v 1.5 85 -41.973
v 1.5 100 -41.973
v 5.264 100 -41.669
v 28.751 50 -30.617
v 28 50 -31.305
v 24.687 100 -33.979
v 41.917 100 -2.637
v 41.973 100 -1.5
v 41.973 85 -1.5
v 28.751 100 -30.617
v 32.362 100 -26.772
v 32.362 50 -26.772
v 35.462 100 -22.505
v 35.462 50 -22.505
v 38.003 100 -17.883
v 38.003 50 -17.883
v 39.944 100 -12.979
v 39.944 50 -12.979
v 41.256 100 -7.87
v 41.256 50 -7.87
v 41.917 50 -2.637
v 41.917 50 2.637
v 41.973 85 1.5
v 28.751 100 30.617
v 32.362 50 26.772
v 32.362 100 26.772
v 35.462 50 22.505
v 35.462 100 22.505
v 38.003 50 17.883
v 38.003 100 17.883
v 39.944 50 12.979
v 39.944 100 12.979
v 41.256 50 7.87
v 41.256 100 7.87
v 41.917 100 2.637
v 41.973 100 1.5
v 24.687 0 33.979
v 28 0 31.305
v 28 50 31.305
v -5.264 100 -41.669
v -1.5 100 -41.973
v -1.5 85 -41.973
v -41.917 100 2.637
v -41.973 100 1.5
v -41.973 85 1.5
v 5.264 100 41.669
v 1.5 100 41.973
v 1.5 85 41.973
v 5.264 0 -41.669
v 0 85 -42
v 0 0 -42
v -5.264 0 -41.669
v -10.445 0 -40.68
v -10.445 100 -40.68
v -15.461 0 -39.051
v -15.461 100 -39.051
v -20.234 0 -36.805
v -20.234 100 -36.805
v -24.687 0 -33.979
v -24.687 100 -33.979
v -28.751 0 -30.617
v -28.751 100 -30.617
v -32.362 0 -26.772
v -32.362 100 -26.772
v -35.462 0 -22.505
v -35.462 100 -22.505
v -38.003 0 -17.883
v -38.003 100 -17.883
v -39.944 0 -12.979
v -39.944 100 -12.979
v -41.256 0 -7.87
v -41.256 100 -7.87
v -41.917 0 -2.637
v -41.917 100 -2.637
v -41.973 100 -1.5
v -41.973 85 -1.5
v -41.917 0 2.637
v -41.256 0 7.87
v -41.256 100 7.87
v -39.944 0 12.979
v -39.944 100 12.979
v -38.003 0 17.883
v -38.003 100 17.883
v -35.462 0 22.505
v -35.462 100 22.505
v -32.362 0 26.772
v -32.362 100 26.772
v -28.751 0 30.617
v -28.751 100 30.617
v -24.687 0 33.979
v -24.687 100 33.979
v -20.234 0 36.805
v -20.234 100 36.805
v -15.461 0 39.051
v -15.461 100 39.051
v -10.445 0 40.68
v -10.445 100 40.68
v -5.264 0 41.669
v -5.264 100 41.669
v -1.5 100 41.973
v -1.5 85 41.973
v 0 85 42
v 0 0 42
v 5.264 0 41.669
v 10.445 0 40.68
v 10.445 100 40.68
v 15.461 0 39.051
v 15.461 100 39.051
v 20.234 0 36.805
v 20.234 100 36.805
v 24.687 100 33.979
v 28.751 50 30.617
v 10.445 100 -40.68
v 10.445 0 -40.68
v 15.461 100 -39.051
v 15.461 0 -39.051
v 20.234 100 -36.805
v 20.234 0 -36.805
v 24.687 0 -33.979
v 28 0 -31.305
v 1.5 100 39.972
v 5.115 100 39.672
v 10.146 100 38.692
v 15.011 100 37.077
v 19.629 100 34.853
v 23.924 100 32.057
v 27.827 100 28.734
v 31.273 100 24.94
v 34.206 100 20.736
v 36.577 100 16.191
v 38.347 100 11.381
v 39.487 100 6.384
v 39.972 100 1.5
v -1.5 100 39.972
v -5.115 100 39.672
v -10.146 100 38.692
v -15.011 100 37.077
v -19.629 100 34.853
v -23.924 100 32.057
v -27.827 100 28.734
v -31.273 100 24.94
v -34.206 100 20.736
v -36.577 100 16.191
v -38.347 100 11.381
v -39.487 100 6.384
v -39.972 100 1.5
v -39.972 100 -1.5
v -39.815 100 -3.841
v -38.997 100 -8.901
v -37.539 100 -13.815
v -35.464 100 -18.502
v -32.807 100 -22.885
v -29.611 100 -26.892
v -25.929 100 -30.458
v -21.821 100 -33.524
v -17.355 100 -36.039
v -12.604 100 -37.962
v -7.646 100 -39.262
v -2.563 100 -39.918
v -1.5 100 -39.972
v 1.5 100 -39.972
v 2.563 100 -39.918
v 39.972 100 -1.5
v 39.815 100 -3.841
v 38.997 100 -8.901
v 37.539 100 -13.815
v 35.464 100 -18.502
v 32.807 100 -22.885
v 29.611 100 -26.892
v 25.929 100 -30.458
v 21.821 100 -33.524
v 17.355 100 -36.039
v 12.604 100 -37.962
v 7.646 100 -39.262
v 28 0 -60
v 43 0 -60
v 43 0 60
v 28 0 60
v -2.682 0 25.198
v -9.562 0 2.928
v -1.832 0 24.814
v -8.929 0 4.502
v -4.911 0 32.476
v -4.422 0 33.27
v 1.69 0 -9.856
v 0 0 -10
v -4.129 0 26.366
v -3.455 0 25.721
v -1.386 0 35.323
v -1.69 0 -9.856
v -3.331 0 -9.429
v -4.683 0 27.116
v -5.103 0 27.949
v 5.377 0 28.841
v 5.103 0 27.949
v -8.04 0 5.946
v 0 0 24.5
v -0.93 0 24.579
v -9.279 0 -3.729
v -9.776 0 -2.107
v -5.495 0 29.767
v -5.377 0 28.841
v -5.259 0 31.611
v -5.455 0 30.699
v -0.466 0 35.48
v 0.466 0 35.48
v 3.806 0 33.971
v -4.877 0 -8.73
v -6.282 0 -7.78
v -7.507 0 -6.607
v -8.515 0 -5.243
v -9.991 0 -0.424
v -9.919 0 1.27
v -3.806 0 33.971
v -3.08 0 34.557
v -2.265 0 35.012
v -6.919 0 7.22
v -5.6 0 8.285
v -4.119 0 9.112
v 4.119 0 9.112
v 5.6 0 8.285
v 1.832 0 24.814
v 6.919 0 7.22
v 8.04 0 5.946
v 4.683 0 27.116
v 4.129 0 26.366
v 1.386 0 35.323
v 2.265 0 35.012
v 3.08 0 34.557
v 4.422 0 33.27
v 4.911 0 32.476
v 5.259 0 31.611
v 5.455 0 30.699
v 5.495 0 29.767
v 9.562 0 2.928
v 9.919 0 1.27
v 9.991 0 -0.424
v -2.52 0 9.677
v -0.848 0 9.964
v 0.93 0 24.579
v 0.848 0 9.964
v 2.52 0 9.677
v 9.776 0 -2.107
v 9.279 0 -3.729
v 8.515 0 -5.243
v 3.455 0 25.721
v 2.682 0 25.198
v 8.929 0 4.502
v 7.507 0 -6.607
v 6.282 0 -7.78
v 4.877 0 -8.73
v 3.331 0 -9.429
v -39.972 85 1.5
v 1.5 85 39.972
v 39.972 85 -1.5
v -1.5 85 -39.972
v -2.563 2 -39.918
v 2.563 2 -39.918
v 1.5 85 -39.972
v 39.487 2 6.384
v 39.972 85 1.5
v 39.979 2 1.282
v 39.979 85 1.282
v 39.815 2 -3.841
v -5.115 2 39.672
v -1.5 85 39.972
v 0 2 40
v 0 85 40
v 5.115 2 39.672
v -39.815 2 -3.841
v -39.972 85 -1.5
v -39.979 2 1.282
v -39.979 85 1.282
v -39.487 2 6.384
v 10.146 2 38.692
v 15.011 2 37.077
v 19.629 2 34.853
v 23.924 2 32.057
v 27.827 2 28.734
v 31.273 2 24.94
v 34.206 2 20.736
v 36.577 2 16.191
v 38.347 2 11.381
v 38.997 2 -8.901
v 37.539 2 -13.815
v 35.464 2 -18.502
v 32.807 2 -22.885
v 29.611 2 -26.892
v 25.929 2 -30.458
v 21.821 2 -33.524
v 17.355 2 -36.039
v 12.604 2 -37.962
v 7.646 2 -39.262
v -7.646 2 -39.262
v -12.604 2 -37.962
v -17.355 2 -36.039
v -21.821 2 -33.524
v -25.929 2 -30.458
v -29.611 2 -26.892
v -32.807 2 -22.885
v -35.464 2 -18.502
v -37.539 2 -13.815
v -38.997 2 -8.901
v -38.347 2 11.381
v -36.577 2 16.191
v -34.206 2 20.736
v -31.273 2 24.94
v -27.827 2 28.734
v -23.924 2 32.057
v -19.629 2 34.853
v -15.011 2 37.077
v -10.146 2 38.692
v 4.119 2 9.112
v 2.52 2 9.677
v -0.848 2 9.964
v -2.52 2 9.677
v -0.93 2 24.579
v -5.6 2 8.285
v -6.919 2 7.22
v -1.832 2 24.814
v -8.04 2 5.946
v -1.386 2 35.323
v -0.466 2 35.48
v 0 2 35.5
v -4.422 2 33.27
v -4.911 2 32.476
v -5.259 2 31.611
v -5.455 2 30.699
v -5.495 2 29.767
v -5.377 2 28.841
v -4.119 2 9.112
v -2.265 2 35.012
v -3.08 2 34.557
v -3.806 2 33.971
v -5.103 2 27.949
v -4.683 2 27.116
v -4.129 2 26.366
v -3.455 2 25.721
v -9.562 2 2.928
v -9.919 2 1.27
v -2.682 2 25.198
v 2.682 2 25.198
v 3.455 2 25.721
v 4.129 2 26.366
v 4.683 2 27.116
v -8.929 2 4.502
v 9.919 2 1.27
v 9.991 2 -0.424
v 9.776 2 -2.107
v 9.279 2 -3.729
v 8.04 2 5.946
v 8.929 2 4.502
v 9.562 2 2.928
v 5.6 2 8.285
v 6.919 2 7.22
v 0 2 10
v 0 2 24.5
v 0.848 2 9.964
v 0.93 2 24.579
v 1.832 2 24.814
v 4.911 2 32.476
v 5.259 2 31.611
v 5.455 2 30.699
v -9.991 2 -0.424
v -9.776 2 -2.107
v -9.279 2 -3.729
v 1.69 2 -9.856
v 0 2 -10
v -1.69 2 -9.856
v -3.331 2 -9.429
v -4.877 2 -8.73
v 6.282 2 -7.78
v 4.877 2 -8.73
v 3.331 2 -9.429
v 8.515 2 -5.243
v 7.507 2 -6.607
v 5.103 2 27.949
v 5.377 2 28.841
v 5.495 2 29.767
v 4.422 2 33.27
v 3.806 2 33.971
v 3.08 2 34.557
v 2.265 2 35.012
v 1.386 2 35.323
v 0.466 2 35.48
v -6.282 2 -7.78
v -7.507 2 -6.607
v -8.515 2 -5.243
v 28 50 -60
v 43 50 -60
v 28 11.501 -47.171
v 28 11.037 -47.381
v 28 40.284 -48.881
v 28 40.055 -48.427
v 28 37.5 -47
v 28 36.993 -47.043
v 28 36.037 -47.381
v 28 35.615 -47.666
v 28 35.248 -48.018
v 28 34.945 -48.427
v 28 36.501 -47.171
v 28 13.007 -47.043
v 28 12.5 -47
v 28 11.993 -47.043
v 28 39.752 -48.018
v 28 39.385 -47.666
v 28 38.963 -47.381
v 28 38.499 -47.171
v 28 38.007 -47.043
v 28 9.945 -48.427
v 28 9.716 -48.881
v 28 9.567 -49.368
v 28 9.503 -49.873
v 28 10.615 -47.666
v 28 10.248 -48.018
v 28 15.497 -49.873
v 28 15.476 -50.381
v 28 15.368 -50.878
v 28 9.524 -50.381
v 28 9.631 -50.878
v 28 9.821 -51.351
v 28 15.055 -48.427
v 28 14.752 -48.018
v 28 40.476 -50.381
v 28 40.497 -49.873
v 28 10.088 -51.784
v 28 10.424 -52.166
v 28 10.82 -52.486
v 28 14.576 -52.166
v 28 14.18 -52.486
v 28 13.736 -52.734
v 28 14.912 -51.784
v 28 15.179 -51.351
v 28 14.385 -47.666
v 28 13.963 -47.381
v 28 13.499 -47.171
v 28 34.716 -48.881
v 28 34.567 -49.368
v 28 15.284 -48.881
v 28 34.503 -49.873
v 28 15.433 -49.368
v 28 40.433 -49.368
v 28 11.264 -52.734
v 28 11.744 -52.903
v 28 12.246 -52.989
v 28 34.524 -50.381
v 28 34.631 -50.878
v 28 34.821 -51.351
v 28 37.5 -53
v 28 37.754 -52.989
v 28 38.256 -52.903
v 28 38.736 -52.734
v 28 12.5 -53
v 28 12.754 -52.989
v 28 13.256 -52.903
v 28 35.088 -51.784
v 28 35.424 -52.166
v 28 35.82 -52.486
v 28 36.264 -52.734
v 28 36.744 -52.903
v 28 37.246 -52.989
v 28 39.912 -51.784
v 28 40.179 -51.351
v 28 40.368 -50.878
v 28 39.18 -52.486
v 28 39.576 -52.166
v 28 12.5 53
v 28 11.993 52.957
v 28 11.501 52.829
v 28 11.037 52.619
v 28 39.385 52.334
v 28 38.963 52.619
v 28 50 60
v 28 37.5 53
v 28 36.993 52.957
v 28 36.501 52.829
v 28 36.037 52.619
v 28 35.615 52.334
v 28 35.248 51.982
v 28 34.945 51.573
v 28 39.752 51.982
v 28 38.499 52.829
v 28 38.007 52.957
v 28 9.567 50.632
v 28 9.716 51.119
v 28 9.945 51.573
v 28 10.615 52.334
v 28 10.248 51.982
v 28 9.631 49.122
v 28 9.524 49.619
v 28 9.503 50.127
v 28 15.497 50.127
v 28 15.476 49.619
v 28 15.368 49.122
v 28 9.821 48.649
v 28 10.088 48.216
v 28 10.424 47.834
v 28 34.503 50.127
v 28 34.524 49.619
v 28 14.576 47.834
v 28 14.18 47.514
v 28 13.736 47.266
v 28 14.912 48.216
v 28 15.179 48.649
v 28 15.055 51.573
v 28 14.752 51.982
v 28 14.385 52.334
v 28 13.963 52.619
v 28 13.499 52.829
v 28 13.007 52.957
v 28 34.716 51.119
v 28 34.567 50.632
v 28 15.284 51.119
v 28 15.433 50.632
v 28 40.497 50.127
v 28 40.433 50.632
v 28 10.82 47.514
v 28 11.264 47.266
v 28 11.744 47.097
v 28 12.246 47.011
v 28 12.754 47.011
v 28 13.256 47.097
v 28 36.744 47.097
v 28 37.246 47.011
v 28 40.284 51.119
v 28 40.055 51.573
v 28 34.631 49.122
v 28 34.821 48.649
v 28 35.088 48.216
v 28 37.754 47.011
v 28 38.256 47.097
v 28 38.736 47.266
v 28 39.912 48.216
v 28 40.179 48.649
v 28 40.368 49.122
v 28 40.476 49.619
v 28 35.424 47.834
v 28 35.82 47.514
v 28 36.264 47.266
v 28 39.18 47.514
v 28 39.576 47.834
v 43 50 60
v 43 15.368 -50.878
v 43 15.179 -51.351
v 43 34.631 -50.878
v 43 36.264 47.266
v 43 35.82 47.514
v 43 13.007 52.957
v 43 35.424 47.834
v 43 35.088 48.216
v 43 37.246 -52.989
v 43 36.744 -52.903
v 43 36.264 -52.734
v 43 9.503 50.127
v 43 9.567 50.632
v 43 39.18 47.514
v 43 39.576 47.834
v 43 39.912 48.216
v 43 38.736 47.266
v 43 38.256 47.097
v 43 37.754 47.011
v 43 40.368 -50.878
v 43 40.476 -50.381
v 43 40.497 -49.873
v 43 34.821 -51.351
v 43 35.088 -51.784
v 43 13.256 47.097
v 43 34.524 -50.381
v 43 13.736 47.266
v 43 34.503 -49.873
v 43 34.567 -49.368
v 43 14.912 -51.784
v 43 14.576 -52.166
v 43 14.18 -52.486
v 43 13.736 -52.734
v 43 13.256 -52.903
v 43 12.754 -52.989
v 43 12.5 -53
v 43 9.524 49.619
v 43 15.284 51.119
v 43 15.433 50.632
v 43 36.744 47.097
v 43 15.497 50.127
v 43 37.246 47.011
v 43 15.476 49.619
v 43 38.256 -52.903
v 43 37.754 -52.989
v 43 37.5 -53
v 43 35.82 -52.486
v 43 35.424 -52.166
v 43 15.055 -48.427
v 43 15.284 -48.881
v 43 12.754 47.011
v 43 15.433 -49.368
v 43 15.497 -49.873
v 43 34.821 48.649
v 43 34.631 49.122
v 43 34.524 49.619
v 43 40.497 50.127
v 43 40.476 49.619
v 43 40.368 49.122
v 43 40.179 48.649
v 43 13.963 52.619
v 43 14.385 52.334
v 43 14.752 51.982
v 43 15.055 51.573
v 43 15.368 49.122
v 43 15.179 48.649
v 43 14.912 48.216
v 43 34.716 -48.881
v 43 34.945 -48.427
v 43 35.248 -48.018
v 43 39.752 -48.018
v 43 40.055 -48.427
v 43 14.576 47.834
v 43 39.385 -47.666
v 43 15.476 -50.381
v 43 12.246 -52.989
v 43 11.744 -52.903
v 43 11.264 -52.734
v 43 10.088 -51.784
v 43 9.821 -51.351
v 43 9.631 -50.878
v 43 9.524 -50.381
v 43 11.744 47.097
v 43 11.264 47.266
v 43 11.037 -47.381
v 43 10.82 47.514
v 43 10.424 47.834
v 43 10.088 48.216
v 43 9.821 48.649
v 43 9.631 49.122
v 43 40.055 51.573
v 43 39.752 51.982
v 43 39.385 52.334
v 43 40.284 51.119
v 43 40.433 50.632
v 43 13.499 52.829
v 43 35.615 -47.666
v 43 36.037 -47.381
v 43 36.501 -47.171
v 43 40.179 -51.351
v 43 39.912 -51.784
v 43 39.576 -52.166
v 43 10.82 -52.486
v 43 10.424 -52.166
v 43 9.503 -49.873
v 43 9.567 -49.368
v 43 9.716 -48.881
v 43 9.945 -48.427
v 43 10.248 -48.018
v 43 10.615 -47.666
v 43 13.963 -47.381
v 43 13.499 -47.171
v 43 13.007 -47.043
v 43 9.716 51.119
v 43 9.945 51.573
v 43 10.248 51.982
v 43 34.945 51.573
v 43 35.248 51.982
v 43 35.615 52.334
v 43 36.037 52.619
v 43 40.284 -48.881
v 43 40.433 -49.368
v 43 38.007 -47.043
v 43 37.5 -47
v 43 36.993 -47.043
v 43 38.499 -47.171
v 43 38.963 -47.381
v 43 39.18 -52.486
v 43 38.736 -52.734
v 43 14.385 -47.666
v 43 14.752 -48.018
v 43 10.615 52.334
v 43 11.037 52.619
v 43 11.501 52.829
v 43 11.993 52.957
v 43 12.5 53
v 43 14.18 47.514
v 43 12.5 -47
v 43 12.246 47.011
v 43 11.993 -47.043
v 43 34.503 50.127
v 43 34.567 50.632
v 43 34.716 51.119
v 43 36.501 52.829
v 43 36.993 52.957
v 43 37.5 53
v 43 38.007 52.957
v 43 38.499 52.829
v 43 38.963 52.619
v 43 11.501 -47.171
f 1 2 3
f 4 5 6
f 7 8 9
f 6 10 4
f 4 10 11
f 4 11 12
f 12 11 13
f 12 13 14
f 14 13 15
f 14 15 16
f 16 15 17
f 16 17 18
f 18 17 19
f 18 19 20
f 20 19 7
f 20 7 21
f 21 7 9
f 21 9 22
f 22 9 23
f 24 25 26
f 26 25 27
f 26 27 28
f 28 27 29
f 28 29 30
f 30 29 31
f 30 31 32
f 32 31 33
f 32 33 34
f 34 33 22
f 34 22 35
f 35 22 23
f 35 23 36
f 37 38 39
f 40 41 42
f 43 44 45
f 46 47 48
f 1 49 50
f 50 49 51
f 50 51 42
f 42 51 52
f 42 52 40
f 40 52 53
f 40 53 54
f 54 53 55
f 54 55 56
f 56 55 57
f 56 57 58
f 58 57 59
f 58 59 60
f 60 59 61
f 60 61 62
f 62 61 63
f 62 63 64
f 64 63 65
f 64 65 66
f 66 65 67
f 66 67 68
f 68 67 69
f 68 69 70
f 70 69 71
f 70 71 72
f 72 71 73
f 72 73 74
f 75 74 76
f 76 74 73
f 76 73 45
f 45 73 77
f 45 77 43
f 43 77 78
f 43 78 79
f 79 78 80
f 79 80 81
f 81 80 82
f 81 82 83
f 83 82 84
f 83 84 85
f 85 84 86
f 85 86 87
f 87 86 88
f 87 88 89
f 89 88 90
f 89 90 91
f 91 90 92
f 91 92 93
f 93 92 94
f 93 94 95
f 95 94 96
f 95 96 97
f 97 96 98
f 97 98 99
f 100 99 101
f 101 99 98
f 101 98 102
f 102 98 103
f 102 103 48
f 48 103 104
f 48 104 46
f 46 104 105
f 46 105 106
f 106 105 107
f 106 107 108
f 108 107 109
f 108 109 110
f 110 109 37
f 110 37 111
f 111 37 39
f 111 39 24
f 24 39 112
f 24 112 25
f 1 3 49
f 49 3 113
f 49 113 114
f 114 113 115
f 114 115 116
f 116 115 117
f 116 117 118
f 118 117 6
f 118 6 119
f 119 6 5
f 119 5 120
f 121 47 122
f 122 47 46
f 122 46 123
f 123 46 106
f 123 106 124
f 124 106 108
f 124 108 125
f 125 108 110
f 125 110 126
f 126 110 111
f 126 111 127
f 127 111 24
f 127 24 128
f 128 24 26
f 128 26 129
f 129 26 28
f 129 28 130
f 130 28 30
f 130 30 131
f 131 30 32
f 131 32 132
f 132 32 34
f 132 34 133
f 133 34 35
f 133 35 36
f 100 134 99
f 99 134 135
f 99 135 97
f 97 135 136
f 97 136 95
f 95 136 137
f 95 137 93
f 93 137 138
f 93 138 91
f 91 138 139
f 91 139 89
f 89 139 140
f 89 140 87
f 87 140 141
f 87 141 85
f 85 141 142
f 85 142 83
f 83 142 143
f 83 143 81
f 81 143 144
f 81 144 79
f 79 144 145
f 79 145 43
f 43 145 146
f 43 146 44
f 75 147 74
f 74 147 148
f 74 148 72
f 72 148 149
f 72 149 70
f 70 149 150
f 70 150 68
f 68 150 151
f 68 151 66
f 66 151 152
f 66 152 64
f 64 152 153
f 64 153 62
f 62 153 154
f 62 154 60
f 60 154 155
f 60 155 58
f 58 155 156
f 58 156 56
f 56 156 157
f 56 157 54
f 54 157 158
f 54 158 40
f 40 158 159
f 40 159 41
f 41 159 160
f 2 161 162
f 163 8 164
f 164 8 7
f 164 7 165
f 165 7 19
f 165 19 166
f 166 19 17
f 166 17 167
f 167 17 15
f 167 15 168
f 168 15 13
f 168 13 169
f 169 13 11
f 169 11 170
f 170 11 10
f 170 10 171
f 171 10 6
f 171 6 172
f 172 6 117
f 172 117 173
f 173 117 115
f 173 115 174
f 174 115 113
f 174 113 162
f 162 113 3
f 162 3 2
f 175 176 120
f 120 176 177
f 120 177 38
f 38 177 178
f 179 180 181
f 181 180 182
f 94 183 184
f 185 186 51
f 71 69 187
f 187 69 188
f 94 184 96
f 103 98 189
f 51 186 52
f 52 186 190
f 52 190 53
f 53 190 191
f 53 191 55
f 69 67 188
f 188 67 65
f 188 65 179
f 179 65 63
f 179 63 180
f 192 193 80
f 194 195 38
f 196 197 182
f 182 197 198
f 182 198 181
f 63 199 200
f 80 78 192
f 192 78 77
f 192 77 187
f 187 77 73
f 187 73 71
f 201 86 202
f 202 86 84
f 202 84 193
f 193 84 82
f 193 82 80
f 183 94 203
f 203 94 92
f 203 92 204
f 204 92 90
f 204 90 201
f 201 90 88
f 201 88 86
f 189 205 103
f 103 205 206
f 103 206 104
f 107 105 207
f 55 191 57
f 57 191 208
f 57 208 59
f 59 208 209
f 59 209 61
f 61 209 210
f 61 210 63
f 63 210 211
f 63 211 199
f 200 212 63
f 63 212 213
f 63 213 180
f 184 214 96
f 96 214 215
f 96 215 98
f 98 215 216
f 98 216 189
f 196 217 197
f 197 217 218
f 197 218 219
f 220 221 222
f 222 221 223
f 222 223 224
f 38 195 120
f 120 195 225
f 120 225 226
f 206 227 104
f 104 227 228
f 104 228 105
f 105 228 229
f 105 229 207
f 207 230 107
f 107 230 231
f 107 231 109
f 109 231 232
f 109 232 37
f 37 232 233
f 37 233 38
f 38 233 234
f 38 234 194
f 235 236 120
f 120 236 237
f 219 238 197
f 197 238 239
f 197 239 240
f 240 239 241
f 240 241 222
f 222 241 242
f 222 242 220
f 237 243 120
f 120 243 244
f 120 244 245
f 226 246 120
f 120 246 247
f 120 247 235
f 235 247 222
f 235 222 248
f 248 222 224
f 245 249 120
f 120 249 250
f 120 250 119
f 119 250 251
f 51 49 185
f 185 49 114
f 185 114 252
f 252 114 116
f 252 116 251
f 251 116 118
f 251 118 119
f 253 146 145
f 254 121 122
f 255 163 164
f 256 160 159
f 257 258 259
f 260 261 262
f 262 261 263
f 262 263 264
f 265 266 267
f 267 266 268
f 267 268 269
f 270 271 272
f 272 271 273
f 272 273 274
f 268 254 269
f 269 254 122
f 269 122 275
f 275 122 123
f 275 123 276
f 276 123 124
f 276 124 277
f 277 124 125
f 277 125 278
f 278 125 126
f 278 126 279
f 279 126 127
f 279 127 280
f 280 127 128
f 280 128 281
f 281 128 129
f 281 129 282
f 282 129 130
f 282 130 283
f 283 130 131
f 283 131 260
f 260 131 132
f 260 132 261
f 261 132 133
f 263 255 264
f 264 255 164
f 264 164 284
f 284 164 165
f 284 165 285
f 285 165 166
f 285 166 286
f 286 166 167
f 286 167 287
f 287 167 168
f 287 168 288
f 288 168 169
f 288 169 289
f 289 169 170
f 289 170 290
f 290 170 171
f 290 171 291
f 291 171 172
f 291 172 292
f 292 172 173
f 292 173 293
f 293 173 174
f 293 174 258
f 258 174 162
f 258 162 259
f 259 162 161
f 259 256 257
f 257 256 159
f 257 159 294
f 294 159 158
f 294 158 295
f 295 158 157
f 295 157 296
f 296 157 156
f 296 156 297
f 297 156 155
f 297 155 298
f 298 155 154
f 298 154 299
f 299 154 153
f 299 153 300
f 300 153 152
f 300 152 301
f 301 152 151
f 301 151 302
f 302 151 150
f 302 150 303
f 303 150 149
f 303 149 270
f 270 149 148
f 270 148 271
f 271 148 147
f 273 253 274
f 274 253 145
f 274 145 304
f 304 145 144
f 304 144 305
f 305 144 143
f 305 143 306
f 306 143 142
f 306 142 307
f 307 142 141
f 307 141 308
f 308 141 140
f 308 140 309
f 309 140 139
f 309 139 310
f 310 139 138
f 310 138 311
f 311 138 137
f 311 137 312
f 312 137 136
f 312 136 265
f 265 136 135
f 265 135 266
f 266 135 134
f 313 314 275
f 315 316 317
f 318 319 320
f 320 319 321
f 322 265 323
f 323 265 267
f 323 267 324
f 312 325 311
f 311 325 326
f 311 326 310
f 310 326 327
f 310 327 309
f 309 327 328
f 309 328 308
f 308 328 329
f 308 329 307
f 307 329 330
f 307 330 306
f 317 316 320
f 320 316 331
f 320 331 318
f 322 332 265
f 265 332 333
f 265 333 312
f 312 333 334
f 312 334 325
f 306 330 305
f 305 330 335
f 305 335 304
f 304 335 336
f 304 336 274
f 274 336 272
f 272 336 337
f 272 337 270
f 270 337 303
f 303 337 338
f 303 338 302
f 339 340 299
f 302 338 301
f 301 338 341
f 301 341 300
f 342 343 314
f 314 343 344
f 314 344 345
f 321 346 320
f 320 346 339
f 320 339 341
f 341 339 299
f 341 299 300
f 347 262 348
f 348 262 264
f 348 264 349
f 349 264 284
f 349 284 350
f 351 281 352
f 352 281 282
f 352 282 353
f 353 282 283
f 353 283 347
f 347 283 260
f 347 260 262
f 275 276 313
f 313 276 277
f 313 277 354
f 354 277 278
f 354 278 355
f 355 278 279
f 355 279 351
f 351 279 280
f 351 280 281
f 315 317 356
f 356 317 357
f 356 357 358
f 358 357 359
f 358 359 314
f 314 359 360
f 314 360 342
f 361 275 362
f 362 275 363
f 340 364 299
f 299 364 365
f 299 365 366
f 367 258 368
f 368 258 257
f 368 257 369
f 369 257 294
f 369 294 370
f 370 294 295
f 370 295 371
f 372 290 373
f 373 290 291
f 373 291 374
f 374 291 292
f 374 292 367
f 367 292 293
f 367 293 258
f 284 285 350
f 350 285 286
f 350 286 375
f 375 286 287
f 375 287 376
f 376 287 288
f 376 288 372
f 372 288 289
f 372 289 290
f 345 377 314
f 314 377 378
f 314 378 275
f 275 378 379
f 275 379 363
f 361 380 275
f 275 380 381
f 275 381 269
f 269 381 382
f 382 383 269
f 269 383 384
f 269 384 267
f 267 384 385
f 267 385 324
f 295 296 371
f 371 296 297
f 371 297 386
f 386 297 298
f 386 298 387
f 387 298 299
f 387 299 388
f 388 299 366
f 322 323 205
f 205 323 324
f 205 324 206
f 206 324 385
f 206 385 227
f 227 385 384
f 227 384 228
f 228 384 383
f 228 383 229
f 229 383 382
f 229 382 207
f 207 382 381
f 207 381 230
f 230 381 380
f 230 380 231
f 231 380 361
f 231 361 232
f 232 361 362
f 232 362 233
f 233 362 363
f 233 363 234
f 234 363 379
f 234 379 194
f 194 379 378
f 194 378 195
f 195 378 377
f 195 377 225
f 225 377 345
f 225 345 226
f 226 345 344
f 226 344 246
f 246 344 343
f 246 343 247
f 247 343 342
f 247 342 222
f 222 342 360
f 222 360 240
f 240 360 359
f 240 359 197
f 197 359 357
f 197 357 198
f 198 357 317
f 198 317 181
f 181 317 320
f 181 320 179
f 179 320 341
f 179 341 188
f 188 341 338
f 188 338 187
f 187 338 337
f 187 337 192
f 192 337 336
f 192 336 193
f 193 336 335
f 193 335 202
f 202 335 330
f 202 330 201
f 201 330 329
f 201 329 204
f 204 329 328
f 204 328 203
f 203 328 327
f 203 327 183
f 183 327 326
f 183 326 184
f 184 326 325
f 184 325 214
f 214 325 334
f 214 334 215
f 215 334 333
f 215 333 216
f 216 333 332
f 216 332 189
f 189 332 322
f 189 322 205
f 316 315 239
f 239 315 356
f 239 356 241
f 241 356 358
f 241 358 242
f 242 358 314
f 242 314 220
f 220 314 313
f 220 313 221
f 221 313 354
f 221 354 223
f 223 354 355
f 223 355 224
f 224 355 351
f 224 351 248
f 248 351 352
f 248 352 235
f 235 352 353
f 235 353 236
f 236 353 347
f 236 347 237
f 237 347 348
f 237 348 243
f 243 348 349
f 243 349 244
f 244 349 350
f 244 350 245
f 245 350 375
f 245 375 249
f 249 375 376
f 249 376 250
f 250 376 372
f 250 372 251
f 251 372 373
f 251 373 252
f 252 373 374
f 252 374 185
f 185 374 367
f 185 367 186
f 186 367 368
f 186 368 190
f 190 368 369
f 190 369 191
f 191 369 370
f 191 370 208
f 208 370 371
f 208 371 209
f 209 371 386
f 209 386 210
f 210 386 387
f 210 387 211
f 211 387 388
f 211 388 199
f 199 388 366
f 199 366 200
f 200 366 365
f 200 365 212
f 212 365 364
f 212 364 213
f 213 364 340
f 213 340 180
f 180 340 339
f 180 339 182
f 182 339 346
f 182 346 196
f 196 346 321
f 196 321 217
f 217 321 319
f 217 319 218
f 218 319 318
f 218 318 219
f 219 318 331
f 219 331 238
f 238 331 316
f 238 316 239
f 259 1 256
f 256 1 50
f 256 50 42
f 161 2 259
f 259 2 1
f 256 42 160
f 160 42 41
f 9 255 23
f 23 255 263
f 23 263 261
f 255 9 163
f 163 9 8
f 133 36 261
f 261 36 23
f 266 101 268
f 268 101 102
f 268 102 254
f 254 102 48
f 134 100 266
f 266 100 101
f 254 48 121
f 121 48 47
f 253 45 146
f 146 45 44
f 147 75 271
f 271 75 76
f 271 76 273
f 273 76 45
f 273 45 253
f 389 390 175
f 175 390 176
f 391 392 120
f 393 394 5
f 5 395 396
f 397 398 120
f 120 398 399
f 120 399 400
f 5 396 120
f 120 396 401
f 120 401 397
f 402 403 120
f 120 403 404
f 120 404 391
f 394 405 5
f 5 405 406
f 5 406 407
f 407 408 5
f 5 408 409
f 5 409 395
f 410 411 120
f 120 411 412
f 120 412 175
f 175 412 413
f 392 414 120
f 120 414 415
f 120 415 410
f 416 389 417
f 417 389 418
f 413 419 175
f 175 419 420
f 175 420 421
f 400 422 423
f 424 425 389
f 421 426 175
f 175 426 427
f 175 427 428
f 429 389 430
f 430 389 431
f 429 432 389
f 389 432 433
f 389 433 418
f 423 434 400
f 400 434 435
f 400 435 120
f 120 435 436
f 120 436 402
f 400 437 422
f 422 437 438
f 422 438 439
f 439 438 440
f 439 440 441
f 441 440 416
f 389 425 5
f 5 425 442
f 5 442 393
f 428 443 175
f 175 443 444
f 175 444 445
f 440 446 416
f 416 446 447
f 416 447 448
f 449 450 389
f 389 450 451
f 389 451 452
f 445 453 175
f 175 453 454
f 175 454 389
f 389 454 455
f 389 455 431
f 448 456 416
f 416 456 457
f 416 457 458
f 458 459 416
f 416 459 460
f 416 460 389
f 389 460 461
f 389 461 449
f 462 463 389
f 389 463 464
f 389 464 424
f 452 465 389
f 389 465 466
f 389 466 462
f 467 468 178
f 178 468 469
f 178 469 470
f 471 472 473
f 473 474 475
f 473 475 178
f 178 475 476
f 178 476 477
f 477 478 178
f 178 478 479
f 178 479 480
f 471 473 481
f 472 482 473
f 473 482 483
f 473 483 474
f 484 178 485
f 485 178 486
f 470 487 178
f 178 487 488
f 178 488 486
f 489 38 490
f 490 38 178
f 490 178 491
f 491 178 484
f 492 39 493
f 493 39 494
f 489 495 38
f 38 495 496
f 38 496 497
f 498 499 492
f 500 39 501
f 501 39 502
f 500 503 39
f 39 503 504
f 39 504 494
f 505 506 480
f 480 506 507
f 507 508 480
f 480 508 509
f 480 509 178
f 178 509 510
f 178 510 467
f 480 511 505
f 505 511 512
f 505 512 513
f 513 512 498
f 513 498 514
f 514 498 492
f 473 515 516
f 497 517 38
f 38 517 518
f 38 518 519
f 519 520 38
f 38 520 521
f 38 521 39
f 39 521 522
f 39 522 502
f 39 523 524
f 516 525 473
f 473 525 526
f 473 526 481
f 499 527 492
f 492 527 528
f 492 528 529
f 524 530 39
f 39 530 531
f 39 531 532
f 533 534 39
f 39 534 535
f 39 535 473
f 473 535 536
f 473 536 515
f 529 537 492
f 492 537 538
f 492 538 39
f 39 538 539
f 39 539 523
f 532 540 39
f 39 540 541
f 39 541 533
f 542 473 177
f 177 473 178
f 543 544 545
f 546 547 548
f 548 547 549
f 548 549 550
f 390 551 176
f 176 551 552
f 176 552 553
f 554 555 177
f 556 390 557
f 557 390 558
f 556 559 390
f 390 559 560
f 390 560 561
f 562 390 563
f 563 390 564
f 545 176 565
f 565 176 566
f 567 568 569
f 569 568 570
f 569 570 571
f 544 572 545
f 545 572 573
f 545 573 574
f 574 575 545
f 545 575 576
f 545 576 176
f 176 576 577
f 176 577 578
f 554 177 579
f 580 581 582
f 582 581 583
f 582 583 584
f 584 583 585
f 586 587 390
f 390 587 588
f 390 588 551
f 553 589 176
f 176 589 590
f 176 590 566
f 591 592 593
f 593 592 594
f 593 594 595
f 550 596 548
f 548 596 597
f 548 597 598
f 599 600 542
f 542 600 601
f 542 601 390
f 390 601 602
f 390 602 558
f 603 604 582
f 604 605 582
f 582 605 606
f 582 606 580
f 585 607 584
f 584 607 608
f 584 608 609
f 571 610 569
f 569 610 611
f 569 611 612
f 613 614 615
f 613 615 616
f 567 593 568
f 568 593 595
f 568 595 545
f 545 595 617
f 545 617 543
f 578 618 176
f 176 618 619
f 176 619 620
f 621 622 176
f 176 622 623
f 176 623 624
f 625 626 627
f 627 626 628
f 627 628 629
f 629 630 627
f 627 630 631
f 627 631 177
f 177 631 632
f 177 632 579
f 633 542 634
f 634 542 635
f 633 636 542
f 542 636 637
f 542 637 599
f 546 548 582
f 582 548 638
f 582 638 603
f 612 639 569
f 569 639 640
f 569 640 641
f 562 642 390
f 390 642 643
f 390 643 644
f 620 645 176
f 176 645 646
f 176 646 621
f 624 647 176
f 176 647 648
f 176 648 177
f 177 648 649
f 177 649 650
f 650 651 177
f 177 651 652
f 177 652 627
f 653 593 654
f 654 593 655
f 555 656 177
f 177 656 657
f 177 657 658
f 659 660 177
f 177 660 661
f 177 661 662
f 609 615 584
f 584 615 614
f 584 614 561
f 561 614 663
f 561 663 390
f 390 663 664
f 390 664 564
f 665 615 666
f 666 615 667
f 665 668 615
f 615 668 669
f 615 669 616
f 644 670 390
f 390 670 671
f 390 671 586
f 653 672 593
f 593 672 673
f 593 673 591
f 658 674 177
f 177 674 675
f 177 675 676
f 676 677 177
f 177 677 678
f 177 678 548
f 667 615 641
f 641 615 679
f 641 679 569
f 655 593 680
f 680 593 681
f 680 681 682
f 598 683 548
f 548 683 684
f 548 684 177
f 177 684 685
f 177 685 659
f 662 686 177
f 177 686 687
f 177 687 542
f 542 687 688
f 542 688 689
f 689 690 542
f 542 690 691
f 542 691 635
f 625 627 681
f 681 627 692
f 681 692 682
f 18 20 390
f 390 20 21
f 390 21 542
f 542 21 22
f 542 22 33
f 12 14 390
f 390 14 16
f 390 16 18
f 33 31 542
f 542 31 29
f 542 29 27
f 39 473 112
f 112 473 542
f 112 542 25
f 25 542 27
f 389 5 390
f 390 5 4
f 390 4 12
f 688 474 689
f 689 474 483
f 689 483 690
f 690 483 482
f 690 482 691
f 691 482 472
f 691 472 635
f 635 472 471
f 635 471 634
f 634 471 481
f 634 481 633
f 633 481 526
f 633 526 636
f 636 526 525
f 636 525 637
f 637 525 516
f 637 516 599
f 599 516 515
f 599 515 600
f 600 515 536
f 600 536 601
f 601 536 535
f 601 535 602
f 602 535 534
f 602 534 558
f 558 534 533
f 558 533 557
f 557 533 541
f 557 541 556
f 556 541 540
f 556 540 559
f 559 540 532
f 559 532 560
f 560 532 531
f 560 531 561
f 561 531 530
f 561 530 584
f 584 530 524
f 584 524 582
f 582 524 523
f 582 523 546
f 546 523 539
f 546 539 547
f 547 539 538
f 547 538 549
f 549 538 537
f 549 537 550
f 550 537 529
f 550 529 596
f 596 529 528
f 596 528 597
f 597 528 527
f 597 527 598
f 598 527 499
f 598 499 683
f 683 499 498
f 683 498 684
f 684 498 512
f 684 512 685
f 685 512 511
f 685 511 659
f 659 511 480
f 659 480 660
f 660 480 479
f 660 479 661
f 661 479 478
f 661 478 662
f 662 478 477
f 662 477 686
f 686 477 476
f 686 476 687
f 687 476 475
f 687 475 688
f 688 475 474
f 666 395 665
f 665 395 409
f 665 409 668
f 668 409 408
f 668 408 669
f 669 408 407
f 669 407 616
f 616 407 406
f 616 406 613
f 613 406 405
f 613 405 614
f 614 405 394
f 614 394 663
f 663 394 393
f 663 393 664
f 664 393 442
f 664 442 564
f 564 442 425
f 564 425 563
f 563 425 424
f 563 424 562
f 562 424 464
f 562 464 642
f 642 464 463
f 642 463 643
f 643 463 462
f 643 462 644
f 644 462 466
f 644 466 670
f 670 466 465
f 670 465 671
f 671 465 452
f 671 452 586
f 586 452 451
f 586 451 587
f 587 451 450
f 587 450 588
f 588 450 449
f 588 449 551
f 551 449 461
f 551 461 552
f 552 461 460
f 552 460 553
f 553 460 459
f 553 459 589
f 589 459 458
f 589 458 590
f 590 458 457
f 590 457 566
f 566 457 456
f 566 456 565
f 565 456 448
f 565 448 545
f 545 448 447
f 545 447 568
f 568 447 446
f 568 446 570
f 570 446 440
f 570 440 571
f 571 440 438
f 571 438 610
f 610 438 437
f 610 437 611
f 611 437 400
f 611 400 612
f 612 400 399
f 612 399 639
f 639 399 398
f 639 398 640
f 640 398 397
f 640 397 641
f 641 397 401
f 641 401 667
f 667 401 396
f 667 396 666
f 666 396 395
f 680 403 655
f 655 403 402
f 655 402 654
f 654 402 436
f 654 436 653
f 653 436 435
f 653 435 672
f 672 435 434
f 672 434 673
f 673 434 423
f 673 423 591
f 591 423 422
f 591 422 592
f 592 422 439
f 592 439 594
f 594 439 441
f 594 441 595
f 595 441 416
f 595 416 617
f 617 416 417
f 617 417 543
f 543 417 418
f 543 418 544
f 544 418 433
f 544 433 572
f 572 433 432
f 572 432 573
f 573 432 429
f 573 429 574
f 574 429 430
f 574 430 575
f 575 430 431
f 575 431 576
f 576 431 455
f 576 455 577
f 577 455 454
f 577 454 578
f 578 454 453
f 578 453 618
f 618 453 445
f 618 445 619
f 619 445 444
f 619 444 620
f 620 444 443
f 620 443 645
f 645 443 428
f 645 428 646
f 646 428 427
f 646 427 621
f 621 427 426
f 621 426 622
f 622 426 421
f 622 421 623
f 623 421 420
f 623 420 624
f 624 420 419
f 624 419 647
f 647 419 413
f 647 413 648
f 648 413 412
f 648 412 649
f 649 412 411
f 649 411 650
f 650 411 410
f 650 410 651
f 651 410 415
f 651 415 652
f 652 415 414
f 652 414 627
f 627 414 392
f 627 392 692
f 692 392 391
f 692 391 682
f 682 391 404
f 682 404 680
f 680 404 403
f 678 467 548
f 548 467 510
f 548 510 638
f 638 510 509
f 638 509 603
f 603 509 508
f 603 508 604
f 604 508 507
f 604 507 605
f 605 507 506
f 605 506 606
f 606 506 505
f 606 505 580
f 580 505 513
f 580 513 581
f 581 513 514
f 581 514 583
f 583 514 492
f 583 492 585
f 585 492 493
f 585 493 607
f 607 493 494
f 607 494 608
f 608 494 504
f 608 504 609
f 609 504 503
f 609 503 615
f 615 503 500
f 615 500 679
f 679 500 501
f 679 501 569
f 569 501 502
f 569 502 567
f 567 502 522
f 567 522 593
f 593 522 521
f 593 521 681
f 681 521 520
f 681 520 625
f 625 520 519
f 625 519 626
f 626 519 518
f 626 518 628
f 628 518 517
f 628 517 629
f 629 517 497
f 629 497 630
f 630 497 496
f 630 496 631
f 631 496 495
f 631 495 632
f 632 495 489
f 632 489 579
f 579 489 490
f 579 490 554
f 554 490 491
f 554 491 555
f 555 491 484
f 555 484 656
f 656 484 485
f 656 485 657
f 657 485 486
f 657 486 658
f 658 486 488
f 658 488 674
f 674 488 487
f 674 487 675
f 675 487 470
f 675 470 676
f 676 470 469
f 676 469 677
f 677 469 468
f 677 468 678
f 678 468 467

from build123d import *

# Parameters (mm, degrees)
ESBO_O1_R                = 42
RESSALTO_EXTRUS_O1_DEPTH = 100
ESBO_O2_R                = 40
CORTE_EXTRUS_O1_DEPTH    = 98
ESBO_O3_R                = 5.5
CORTE_EXTRUS_O2_DEPTH    = 117.309930788
ESBO_O4_R                = 10
CORTE_EXTRUS_O3_DEPTH    = 117.309930788
CORTE_EXTRUS_O4_DEPTH    = 15
RESSALTO_EXTRUS_O3_DEPTH = 50
ESBO_O9_R                = 3
CORTE_EXTRUS_O5_DEPTH    = 137.014705087


with BuildPart() as part:
    # Esboço1 → Ressalto-extrusão1 (new body)
    with BuildSketch(Plane(origin=(0, 0, 0), x_dir=(1, 0, 0), z_dir=(0, 1, 0))):
        with Locations(Location((0, 0, 0), (0, 0, 270))):
            Circle(ESBO_O1_R)
    extrude(amount=RESSALTO_EXTRUS_O1_DEPTH)

    # Esboço2 → Corte-extrusão1 (cut)
    with BuildSketch(Plane(origin=(0, 100, 0), x_dir=(1, 0, 0), z_dir=(0, 1, 0))):
        with Locations(Location((0, 0, 0), (0, 0, 270))):
            Circle(ESBO_O2_R)
    extrude(amount=-CORTE_EXTRUS_O1_DEPTH, mode=Mode.SUBTRACT)

    # Esboço3 → Corte-extrusão2 (cut, through all)
    with BuildSketch(Plane.XZ):
        with Locations(Location((0, 30, 0), (0, 0, 270))):
            Circle(ESBO_O3_R)
    extrude(amount=-CORTE_EXTRUS_O2_DEPTH, mode=Mode.SUBTRACT)

    # Esboço4 → Corte-extrusão3 (cut, through all)
    with BuildSketch(Plane.XZ):
        with Locations(Location((0, 0, 0), (0, 0, 270))):
            Circle(ESBO_O4_R)
    extrude(amount=-CORTE_EXTRUS_O3_DEPTH, mode=Mode.SUBTRACT)

    # Esboço5 → Corte-extrusão4 (cut)
    with BuildSketch(Plane(origin=(0, 100, 0), x_dir=(1, 0, 0), z_dir=(0, 1, 0))):
        Polygon((1.5, 1.5), (52.94033898, 1.5), (52.94033898, -1.5), (1.5, -1.5), (1.5, -46.298898587), (-1.5, -46.298898587), (-1.5, -1.5), (-52.94033898, -1.5), (-52.94033898, 1.5), (-1.5, 1.5), (-1.5, 46.298898587), (1.5, 46.298898587), align=None)
    extrude(amount=-CORTE_EXTRUS_O4_DEPTH, mode=Mode.SUBTRACT)

    # Esboço8 → Ressalto-extrusão3 (add)
    with BuildSketch(Plane.XZ):
        with BuildLine():
            Line((28, 31.304951685), (28, 60))
            Line((28, 60), (43, 60))
            Line((43, 60), (43, -60))
            Line((43, -60), (28, -60))
            Line((28, -60), (28, -31.304951685))
            ThreePointArc((28, -31.304951685), (42, 0), (28, 31.304951685))
        make_face()
    extrude(amount=-RESSALTO_EXTRUS_O3_DEPTH)

    # Esboço9 → Corte-extrusão5 (cut, through all)
    with BuildSketch(Plane.ZY.offset(-28)):
        with Locations((50, 37.5)):
            Circle(ESBO_O9_R)
        with Locations((50, 12.5)):
            Circle(ESBO_O9_R)
        with Locations(Location((-50, 12.5, 0), (0, 0, 180))):
            Circle(ESBO_O9_R)
        with Locations(Location((-50, 37.5, 0), (0, 0, 180))):
            Circle(ESBO_O9_R)
    extrude(amount=-CORTE_EXTRUS_O5_DEPTH, mode=Mode.SUBTRACT)


solid = part.part
